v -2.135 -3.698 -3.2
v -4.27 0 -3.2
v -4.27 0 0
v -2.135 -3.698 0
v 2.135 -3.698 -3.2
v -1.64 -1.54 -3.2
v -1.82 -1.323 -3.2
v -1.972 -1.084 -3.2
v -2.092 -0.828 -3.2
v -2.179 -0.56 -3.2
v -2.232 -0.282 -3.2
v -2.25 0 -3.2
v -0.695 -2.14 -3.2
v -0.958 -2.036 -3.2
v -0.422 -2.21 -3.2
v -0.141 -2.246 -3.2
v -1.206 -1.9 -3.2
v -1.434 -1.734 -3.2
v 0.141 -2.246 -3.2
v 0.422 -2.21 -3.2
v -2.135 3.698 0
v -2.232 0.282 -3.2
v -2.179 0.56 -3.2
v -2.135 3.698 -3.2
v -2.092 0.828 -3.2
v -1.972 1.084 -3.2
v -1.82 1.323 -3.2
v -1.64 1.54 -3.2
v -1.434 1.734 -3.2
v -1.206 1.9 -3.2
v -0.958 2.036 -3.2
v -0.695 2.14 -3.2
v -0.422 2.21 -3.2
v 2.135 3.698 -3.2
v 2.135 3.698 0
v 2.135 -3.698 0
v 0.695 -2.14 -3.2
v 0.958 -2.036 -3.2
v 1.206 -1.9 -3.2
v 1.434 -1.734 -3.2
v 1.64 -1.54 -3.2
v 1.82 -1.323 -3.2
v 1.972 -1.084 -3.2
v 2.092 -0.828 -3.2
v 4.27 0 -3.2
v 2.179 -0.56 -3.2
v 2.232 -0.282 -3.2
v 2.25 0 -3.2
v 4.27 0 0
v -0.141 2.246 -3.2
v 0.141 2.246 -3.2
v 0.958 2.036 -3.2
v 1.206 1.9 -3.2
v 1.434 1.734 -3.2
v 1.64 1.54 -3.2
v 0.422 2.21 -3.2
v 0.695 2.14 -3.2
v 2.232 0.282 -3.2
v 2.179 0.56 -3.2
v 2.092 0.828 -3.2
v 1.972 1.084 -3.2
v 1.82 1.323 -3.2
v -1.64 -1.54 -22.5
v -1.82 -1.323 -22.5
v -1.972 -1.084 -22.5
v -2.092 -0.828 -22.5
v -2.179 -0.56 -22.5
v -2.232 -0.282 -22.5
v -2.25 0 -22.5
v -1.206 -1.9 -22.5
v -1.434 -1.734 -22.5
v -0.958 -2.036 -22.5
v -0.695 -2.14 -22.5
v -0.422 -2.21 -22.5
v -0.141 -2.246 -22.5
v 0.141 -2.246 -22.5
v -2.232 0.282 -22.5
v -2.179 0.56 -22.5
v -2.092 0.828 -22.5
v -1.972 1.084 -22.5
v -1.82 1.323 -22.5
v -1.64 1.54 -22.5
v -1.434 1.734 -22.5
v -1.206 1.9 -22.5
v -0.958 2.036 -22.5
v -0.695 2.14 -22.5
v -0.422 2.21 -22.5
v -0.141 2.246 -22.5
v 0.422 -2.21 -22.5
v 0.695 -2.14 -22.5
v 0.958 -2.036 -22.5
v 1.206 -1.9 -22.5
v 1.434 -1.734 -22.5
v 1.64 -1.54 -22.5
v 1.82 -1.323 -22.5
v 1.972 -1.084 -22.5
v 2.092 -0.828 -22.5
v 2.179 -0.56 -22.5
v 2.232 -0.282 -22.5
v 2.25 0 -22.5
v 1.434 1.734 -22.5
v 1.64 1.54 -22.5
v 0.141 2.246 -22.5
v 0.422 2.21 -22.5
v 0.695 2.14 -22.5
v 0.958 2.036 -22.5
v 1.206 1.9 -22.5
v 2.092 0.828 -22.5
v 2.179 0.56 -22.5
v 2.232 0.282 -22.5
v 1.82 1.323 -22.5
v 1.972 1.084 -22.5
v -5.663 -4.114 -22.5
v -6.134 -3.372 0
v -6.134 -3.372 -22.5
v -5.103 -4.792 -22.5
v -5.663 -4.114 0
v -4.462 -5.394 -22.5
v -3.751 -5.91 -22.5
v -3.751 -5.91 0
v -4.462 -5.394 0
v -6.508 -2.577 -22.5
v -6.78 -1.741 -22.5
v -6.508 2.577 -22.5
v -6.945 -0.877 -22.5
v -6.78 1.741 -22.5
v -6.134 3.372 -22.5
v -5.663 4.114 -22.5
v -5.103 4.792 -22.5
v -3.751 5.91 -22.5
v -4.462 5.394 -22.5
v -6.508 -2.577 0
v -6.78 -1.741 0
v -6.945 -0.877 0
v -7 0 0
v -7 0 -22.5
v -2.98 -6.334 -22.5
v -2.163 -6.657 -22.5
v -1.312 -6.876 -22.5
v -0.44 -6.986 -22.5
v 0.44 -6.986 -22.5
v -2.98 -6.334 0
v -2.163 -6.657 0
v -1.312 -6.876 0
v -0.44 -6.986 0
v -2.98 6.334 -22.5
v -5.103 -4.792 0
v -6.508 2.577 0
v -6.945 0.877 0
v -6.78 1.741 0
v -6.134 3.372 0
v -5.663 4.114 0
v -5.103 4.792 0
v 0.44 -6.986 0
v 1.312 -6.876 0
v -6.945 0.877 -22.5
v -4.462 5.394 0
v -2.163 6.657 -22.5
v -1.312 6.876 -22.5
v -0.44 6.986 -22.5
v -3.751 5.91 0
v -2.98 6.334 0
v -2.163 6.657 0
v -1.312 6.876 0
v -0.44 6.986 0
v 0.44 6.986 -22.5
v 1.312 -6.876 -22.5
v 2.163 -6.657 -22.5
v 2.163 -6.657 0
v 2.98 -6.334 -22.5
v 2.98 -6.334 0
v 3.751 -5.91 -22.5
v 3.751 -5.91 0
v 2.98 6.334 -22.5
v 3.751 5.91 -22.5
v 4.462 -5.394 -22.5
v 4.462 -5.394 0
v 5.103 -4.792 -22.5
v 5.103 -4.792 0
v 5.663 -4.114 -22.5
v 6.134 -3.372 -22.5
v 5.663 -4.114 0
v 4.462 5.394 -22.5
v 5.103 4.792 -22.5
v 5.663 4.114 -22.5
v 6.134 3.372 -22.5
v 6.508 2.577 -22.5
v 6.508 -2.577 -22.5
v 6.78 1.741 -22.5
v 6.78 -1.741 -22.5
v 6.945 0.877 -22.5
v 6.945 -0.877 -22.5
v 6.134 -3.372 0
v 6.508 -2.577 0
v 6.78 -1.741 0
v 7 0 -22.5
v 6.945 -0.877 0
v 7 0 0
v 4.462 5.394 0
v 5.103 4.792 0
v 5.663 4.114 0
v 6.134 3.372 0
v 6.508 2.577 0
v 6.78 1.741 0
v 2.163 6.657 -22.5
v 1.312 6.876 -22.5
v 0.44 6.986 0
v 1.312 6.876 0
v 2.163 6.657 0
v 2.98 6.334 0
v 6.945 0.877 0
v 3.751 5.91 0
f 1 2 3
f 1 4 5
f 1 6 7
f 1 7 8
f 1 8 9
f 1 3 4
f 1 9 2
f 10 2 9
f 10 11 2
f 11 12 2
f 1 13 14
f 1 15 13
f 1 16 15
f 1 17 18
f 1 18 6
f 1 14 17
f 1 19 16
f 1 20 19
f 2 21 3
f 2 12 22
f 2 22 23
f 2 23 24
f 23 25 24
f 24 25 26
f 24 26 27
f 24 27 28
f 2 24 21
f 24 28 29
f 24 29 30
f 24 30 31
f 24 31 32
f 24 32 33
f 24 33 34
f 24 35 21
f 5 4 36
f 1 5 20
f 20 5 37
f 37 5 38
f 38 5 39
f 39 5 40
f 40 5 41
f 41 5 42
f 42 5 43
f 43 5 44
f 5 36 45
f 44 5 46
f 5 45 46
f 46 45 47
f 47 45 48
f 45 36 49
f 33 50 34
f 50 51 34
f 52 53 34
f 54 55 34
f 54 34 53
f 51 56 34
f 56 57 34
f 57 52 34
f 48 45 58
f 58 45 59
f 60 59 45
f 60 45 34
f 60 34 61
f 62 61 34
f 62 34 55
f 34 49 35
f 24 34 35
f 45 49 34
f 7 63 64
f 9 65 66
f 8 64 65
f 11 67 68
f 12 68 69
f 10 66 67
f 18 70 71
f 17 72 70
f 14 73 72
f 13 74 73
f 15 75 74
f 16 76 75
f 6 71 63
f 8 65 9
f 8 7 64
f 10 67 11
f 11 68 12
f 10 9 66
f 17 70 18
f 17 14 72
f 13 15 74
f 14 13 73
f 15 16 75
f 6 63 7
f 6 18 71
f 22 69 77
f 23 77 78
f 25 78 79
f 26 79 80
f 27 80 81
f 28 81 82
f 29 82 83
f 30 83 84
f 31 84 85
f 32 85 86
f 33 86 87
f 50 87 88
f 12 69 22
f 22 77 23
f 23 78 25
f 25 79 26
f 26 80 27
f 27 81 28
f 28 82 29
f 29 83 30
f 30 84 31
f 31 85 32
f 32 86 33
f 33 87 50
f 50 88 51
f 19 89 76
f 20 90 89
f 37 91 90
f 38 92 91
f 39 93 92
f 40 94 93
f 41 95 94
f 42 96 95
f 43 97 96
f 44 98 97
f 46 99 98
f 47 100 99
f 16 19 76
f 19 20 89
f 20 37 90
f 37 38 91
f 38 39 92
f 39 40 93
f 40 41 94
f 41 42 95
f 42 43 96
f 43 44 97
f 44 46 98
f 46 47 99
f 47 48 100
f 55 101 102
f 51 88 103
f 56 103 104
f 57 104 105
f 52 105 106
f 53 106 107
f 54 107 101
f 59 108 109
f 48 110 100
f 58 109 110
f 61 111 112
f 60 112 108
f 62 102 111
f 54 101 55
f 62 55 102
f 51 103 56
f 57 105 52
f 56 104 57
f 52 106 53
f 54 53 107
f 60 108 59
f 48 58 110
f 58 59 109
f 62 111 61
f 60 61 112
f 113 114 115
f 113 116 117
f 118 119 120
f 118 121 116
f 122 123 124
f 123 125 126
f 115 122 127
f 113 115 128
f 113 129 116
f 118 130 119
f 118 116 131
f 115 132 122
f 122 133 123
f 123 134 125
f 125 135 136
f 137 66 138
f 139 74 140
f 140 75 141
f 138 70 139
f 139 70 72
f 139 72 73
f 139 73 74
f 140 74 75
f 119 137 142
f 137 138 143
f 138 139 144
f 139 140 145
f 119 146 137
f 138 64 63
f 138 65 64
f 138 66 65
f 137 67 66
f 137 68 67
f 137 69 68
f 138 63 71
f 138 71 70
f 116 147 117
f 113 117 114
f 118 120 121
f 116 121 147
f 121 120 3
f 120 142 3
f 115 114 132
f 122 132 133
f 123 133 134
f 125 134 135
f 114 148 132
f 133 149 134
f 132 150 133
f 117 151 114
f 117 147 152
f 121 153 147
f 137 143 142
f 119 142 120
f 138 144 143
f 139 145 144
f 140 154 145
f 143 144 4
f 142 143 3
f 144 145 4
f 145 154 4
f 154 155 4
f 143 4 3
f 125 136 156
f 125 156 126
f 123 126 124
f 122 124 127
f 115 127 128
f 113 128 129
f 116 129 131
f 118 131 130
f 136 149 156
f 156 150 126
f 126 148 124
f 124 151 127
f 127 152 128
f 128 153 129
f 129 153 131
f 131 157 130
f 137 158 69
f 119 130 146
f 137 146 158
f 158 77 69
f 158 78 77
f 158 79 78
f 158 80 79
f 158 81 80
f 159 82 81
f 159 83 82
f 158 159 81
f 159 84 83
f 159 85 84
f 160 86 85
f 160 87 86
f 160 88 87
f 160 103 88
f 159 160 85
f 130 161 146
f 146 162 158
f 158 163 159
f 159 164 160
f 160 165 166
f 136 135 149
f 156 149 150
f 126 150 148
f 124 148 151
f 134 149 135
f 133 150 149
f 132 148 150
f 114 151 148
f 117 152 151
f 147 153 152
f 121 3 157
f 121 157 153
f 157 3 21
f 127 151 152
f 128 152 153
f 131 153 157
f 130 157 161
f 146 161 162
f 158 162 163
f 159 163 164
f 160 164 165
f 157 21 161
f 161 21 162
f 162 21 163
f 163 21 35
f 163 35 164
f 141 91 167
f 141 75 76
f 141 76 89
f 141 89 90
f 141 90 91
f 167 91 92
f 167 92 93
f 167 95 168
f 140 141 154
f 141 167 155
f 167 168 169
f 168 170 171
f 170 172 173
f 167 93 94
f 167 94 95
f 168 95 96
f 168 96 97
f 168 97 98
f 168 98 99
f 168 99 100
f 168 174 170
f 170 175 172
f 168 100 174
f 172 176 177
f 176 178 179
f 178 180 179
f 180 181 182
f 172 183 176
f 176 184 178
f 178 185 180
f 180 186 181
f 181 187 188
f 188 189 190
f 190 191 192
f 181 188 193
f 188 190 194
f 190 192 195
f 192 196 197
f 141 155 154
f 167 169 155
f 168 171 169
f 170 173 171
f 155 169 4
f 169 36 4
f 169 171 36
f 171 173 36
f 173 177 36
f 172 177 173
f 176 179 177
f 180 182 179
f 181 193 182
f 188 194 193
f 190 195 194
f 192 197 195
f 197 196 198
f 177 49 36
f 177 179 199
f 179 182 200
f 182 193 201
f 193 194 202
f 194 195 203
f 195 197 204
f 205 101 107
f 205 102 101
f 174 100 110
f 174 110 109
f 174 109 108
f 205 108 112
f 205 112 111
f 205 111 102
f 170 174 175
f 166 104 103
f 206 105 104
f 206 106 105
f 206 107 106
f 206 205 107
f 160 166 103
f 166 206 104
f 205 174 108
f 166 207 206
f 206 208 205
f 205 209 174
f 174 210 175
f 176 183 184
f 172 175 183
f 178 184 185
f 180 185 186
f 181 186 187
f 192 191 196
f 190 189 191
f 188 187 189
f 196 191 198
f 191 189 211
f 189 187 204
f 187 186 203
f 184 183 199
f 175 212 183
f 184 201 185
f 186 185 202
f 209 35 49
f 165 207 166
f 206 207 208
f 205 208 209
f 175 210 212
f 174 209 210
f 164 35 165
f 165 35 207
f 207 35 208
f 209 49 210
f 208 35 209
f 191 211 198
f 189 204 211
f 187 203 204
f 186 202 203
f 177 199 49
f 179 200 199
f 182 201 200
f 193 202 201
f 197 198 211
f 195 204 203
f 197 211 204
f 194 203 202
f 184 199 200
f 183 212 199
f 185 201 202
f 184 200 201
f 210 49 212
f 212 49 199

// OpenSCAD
$fn = 50;


difference() {
	union() {
		translate(v = [0, 0, -22.5000000000]) {
			cylinder(h = 22.5000000000, r = 7.0000000000);
		}
	}
	union() {
		translate(v = [0, 0, 0]) {
			rotate(a = [0, 0, 0]) {
				difference() {
					union() {
						translate(v = [0, 0, -3.2000000000]) {
							linear_extrude(height = 3.2000000000) {
								polygon(points = [[4.2698000000, 0.0000000000], [2.1349000000, 3.6977552691], [-2.1349000000, 3.6977552691], [-4.2698000000, 0.0000000000], [-2.1349000000, -3.6977552691], [2.1349000000, -3.6977552691]]);
							}
						}
					}
					union();
				}
			}
		}
		#translate(v = [0, 0, -100.0000000000]) {
			cylinder(h = 200, r = 2.2500000000);
		}
	}
}
